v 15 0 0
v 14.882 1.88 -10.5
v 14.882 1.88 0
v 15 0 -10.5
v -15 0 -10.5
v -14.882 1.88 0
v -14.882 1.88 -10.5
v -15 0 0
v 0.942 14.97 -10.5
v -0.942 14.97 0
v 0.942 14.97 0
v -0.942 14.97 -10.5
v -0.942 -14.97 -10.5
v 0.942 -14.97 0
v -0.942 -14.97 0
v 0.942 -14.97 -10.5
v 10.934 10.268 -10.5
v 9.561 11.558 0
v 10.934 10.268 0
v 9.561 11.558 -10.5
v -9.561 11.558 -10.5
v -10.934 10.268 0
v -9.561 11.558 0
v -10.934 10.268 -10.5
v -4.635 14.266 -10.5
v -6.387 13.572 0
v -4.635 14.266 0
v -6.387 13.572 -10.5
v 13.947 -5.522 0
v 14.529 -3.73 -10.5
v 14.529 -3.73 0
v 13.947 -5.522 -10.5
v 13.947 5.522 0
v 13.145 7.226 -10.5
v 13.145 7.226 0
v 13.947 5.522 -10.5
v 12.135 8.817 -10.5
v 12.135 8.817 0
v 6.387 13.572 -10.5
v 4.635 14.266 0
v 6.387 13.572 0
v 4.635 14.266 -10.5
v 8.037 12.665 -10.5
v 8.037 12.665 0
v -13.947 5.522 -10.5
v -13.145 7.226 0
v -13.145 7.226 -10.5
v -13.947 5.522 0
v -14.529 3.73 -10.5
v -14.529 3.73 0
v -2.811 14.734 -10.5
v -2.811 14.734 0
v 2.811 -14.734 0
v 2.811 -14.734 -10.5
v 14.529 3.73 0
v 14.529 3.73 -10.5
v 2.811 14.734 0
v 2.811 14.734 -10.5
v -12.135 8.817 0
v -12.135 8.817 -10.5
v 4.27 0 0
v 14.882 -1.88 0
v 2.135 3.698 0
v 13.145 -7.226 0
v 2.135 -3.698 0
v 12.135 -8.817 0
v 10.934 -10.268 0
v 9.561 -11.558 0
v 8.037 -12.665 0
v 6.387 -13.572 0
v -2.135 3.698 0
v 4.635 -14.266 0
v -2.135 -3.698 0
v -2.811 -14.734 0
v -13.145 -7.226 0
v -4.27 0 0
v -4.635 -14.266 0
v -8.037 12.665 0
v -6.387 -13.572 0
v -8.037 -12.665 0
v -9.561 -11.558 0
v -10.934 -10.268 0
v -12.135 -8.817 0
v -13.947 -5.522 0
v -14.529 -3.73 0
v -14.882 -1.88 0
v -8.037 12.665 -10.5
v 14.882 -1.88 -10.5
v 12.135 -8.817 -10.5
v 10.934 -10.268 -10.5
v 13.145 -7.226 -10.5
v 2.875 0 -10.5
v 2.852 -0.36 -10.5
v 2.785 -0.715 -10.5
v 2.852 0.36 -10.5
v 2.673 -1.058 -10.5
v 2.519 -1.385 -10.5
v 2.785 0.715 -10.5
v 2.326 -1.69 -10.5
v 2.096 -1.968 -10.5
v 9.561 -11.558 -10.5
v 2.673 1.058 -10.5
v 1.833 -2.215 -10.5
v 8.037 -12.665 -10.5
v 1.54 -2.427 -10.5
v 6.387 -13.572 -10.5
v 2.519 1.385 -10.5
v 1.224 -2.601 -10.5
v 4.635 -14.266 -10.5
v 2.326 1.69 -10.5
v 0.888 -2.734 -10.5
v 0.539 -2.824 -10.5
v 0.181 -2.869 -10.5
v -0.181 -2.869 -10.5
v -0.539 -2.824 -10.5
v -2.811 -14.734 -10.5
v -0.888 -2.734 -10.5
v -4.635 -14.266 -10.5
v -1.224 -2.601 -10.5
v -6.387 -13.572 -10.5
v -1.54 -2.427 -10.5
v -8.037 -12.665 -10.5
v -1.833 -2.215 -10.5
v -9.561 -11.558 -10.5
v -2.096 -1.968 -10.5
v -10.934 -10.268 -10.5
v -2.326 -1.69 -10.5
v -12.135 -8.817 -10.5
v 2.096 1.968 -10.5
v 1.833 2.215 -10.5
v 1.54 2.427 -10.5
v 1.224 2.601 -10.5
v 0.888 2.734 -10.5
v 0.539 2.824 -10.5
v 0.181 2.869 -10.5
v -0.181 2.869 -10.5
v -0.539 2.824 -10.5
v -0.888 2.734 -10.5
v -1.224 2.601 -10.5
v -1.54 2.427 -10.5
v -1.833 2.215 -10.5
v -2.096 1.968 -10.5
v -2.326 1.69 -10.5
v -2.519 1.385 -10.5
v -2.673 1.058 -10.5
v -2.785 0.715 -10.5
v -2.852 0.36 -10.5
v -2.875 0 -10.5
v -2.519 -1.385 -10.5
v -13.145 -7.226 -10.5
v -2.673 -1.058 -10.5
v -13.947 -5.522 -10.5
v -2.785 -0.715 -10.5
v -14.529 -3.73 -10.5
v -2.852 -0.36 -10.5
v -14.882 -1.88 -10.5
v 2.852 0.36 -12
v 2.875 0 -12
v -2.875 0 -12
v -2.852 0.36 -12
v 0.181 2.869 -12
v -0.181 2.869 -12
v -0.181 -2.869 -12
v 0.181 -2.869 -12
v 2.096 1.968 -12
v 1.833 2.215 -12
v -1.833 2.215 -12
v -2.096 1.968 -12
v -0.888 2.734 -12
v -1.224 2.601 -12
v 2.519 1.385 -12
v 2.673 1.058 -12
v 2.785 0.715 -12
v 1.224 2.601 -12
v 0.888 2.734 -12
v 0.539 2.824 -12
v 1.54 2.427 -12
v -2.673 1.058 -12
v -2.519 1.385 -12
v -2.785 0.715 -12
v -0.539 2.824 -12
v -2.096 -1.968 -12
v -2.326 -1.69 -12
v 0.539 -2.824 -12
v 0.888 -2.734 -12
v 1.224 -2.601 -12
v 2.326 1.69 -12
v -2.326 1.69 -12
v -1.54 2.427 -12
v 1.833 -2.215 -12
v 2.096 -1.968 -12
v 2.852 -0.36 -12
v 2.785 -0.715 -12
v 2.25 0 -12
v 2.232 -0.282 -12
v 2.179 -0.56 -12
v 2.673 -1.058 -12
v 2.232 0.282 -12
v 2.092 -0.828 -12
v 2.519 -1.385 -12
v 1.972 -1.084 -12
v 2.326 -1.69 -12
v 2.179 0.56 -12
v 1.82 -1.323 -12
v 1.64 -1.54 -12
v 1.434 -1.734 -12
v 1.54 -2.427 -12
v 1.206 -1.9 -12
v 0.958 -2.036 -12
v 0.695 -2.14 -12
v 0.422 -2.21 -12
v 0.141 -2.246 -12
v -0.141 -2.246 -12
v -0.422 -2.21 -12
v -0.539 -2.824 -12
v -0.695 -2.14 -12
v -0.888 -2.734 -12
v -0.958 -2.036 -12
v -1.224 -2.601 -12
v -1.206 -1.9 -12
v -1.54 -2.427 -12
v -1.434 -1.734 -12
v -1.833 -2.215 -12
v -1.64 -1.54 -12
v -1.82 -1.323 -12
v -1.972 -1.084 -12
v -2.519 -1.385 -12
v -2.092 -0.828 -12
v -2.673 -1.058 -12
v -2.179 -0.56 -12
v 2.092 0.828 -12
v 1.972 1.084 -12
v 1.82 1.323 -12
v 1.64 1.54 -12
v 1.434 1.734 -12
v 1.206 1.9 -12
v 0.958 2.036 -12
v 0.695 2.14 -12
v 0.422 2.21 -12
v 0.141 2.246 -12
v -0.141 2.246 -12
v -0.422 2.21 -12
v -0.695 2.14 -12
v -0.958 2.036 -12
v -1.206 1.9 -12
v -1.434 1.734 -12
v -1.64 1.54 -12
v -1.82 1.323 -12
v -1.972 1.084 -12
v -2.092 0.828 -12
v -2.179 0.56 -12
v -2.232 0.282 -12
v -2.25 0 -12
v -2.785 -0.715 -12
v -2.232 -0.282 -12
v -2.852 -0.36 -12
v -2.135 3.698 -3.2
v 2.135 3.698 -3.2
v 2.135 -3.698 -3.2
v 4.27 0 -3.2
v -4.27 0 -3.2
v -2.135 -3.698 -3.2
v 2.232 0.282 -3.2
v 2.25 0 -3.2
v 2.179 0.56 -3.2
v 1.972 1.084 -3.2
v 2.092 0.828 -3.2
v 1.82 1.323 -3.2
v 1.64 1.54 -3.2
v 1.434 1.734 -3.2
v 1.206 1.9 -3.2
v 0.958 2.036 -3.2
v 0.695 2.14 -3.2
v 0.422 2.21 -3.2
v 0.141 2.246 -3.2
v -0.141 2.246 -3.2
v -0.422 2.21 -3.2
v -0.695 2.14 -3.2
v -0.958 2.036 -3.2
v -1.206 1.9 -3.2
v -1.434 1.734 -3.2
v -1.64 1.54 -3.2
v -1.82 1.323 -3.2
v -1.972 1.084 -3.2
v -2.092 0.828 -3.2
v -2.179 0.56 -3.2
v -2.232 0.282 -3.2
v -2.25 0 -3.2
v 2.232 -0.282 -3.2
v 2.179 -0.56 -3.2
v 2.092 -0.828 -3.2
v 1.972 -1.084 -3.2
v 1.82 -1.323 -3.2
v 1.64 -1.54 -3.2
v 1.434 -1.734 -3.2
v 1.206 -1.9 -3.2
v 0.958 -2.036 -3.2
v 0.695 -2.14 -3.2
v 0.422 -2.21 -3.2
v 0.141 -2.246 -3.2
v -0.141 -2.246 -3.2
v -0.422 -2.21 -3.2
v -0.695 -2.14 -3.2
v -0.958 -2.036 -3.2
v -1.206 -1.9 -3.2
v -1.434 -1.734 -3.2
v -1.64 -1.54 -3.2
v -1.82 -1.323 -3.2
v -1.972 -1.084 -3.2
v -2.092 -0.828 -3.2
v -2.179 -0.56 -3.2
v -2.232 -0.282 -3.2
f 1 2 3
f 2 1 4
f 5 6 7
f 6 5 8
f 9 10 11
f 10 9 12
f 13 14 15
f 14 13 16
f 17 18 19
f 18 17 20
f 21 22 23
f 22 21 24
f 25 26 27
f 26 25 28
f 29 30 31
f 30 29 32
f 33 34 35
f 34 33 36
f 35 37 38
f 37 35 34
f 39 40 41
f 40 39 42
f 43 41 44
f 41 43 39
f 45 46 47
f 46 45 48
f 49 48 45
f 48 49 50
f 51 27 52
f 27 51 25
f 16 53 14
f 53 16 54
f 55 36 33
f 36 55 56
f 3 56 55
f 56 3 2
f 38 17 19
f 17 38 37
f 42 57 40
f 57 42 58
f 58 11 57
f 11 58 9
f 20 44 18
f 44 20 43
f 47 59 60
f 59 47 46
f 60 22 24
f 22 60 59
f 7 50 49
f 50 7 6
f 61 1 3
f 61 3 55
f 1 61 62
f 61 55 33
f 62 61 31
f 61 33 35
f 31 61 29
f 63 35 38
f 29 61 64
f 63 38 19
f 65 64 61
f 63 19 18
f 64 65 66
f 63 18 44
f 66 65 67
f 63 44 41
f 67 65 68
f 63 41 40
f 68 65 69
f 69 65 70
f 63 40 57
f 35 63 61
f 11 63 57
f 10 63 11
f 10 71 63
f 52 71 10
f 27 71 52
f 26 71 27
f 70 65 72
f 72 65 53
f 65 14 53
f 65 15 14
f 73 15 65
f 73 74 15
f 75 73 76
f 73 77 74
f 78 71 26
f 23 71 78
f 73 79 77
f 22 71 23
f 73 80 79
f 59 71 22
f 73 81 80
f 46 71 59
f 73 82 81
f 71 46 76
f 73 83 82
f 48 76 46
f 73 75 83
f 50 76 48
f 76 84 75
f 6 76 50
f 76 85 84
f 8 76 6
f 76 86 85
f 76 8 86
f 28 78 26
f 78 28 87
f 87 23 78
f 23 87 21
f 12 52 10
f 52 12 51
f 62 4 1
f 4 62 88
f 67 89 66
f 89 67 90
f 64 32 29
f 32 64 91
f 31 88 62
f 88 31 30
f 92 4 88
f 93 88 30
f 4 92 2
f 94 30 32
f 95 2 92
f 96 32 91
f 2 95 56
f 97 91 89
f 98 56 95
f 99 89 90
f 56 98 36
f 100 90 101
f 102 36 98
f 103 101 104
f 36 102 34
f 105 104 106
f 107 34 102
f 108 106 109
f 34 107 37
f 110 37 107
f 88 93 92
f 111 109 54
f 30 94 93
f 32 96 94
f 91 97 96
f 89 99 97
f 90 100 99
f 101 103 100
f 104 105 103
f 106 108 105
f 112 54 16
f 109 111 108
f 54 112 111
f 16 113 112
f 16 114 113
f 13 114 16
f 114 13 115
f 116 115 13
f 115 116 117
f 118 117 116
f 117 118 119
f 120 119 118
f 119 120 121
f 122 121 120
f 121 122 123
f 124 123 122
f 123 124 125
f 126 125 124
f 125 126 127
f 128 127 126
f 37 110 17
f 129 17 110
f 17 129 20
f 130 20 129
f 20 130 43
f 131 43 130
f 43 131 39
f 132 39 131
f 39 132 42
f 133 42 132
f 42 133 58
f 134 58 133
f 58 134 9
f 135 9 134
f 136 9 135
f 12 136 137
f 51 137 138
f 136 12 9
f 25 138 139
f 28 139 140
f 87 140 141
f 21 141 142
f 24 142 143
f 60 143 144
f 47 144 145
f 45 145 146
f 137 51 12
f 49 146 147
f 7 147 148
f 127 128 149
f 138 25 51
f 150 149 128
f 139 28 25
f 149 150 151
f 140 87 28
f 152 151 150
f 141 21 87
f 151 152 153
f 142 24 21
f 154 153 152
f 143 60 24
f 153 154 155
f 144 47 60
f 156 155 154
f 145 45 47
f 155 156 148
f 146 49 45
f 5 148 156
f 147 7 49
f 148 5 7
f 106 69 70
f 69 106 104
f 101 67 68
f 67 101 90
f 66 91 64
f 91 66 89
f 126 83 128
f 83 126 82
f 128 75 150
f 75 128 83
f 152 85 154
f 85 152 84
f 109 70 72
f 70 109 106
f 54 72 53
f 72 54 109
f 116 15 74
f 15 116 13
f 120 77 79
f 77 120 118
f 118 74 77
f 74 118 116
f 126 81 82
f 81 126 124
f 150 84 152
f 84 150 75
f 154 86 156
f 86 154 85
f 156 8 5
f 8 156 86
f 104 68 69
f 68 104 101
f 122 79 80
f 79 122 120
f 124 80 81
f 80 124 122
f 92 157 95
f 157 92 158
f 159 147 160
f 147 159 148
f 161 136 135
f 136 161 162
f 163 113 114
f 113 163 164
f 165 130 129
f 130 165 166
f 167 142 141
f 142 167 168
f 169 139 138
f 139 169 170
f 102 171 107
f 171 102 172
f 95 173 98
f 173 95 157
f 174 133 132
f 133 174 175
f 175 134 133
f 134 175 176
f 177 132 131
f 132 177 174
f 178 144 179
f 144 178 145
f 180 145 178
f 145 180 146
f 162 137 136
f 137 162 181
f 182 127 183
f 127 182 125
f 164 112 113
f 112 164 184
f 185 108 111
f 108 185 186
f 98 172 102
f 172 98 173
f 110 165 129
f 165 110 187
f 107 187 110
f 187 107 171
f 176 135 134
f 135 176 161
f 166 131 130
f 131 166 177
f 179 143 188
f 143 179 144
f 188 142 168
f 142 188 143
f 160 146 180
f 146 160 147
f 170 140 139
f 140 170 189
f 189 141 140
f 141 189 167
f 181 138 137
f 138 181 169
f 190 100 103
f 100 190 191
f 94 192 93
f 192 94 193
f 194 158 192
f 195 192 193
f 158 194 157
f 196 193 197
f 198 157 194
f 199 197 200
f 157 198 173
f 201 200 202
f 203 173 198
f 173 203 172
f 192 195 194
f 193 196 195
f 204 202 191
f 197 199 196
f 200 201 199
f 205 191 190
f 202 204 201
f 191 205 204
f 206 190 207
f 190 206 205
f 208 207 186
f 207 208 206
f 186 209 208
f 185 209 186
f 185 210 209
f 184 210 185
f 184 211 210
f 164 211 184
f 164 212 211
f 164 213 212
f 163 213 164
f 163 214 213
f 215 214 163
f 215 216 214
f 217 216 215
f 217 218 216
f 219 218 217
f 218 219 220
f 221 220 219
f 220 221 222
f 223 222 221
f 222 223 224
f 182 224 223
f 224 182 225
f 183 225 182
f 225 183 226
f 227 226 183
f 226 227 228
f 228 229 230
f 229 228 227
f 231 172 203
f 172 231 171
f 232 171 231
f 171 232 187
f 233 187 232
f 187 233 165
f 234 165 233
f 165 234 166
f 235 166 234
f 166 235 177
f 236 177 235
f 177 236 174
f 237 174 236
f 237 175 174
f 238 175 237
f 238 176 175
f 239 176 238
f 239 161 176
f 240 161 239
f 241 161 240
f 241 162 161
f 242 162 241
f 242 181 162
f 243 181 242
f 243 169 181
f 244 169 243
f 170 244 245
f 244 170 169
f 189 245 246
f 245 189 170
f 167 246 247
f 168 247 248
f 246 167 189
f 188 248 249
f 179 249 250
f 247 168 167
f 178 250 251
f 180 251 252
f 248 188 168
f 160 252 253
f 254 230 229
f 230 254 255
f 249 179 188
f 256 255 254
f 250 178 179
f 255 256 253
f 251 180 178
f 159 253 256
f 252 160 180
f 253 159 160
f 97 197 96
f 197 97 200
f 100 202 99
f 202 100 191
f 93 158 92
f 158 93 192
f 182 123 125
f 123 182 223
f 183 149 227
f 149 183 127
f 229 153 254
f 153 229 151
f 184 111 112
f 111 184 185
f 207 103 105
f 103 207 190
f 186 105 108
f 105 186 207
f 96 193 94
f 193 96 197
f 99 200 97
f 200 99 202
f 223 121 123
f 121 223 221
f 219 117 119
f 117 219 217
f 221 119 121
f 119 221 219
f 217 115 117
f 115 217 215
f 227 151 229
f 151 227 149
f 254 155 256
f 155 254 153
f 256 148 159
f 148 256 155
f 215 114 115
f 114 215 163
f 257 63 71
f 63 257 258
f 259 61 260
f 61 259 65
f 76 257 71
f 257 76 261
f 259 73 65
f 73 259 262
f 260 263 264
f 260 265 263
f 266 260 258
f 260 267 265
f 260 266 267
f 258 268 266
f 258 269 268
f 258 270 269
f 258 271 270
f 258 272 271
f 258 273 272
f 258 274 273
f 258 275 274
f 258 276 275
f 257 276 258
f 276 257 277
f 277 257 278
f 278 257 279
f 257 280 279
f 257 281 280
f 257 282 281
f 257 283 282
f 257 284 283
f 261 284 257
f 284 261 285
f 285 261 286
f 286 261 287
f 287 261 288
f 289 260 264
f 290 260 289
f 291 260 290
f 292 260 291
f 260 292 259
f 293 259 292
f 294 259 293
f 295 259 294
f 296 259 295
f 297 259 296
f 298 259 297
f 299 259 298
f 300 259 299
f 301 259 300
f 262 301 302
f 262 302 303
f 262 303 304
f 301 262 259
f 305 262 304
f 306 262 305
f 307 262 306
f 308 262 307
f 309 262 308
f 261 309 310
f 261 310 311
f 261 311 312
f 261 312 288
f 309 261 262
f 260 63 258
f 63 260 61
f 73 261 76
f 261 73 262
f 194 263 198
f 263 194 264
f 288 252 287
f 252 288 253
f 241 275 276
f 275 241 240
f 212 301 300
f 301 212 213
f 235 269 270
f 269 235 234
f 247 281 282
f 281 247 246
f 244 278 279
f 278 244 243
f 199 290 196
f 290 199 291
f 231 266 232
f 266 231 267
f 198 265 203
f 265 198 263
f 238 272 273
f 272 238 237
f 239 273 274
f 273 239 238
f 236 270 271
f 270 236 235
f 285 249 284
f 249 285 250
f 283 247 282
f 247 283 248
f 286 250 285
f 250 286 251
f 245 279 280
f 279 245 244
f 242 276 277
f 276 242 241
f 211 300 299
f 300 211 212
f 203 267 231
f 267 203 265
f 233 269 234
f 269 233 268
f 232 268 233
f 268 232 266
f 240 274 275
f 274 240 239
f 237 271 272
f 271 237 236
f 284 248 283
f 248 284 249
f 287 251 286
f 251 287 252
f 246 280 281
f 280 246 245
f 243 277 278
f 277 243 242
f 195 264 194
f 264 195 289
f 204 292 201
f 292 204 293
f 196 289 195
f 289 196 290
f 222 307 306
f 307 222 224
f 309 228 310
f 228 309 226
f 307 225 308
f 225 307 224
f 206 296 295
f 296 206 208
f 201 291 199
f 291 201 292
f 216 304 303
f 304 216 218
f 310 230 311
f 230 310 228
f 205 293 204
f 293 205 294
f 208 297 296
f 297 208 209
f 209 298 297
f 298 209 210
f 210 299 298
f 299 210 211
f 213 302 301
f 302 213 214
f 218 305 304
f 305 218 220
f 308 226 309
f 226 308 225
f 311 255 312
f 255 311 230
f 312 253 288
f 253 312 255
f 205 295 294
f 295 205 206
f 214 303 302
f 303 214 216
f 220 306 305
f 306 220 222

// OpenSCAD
$fn = 50;


difference() {
	union() {
		translate(v = [0, 0, -10.5000000000]) {
			cylinder(h = 10.5000000000, r = 15.0000000000);
		}
		translate(v = [0, 0, -12.0000000000]) {
			cylinder(h = 12, r = 2.8750000000);
		}
	}
	union() {
		translate(v = [0, 0, 0]) {
			rotate(a = [0, 0, 0]) {
				difference() {
					union() {
						translate(v = [0, 0, -3.2000000000]) {
							linear_extrude(height = 3.2000000000) {
								polygon(points = [[4.2698000000, 0.0000000000], [2.1349000000, 3.6977552691], [-2.1349000000, 3.6977552691], [-4.2698000000, 0.0000000000], [-2.1349000000, -3.6977552691], [2.1349000000, -3.6977552691]]);
							}
						}
					}
					union();
				}
			}
		}
		#translate(v = [0, 0, -100.0000000000]) {
			cylinder(h = 200, r = 2.2500000000);
		}
	}
}
